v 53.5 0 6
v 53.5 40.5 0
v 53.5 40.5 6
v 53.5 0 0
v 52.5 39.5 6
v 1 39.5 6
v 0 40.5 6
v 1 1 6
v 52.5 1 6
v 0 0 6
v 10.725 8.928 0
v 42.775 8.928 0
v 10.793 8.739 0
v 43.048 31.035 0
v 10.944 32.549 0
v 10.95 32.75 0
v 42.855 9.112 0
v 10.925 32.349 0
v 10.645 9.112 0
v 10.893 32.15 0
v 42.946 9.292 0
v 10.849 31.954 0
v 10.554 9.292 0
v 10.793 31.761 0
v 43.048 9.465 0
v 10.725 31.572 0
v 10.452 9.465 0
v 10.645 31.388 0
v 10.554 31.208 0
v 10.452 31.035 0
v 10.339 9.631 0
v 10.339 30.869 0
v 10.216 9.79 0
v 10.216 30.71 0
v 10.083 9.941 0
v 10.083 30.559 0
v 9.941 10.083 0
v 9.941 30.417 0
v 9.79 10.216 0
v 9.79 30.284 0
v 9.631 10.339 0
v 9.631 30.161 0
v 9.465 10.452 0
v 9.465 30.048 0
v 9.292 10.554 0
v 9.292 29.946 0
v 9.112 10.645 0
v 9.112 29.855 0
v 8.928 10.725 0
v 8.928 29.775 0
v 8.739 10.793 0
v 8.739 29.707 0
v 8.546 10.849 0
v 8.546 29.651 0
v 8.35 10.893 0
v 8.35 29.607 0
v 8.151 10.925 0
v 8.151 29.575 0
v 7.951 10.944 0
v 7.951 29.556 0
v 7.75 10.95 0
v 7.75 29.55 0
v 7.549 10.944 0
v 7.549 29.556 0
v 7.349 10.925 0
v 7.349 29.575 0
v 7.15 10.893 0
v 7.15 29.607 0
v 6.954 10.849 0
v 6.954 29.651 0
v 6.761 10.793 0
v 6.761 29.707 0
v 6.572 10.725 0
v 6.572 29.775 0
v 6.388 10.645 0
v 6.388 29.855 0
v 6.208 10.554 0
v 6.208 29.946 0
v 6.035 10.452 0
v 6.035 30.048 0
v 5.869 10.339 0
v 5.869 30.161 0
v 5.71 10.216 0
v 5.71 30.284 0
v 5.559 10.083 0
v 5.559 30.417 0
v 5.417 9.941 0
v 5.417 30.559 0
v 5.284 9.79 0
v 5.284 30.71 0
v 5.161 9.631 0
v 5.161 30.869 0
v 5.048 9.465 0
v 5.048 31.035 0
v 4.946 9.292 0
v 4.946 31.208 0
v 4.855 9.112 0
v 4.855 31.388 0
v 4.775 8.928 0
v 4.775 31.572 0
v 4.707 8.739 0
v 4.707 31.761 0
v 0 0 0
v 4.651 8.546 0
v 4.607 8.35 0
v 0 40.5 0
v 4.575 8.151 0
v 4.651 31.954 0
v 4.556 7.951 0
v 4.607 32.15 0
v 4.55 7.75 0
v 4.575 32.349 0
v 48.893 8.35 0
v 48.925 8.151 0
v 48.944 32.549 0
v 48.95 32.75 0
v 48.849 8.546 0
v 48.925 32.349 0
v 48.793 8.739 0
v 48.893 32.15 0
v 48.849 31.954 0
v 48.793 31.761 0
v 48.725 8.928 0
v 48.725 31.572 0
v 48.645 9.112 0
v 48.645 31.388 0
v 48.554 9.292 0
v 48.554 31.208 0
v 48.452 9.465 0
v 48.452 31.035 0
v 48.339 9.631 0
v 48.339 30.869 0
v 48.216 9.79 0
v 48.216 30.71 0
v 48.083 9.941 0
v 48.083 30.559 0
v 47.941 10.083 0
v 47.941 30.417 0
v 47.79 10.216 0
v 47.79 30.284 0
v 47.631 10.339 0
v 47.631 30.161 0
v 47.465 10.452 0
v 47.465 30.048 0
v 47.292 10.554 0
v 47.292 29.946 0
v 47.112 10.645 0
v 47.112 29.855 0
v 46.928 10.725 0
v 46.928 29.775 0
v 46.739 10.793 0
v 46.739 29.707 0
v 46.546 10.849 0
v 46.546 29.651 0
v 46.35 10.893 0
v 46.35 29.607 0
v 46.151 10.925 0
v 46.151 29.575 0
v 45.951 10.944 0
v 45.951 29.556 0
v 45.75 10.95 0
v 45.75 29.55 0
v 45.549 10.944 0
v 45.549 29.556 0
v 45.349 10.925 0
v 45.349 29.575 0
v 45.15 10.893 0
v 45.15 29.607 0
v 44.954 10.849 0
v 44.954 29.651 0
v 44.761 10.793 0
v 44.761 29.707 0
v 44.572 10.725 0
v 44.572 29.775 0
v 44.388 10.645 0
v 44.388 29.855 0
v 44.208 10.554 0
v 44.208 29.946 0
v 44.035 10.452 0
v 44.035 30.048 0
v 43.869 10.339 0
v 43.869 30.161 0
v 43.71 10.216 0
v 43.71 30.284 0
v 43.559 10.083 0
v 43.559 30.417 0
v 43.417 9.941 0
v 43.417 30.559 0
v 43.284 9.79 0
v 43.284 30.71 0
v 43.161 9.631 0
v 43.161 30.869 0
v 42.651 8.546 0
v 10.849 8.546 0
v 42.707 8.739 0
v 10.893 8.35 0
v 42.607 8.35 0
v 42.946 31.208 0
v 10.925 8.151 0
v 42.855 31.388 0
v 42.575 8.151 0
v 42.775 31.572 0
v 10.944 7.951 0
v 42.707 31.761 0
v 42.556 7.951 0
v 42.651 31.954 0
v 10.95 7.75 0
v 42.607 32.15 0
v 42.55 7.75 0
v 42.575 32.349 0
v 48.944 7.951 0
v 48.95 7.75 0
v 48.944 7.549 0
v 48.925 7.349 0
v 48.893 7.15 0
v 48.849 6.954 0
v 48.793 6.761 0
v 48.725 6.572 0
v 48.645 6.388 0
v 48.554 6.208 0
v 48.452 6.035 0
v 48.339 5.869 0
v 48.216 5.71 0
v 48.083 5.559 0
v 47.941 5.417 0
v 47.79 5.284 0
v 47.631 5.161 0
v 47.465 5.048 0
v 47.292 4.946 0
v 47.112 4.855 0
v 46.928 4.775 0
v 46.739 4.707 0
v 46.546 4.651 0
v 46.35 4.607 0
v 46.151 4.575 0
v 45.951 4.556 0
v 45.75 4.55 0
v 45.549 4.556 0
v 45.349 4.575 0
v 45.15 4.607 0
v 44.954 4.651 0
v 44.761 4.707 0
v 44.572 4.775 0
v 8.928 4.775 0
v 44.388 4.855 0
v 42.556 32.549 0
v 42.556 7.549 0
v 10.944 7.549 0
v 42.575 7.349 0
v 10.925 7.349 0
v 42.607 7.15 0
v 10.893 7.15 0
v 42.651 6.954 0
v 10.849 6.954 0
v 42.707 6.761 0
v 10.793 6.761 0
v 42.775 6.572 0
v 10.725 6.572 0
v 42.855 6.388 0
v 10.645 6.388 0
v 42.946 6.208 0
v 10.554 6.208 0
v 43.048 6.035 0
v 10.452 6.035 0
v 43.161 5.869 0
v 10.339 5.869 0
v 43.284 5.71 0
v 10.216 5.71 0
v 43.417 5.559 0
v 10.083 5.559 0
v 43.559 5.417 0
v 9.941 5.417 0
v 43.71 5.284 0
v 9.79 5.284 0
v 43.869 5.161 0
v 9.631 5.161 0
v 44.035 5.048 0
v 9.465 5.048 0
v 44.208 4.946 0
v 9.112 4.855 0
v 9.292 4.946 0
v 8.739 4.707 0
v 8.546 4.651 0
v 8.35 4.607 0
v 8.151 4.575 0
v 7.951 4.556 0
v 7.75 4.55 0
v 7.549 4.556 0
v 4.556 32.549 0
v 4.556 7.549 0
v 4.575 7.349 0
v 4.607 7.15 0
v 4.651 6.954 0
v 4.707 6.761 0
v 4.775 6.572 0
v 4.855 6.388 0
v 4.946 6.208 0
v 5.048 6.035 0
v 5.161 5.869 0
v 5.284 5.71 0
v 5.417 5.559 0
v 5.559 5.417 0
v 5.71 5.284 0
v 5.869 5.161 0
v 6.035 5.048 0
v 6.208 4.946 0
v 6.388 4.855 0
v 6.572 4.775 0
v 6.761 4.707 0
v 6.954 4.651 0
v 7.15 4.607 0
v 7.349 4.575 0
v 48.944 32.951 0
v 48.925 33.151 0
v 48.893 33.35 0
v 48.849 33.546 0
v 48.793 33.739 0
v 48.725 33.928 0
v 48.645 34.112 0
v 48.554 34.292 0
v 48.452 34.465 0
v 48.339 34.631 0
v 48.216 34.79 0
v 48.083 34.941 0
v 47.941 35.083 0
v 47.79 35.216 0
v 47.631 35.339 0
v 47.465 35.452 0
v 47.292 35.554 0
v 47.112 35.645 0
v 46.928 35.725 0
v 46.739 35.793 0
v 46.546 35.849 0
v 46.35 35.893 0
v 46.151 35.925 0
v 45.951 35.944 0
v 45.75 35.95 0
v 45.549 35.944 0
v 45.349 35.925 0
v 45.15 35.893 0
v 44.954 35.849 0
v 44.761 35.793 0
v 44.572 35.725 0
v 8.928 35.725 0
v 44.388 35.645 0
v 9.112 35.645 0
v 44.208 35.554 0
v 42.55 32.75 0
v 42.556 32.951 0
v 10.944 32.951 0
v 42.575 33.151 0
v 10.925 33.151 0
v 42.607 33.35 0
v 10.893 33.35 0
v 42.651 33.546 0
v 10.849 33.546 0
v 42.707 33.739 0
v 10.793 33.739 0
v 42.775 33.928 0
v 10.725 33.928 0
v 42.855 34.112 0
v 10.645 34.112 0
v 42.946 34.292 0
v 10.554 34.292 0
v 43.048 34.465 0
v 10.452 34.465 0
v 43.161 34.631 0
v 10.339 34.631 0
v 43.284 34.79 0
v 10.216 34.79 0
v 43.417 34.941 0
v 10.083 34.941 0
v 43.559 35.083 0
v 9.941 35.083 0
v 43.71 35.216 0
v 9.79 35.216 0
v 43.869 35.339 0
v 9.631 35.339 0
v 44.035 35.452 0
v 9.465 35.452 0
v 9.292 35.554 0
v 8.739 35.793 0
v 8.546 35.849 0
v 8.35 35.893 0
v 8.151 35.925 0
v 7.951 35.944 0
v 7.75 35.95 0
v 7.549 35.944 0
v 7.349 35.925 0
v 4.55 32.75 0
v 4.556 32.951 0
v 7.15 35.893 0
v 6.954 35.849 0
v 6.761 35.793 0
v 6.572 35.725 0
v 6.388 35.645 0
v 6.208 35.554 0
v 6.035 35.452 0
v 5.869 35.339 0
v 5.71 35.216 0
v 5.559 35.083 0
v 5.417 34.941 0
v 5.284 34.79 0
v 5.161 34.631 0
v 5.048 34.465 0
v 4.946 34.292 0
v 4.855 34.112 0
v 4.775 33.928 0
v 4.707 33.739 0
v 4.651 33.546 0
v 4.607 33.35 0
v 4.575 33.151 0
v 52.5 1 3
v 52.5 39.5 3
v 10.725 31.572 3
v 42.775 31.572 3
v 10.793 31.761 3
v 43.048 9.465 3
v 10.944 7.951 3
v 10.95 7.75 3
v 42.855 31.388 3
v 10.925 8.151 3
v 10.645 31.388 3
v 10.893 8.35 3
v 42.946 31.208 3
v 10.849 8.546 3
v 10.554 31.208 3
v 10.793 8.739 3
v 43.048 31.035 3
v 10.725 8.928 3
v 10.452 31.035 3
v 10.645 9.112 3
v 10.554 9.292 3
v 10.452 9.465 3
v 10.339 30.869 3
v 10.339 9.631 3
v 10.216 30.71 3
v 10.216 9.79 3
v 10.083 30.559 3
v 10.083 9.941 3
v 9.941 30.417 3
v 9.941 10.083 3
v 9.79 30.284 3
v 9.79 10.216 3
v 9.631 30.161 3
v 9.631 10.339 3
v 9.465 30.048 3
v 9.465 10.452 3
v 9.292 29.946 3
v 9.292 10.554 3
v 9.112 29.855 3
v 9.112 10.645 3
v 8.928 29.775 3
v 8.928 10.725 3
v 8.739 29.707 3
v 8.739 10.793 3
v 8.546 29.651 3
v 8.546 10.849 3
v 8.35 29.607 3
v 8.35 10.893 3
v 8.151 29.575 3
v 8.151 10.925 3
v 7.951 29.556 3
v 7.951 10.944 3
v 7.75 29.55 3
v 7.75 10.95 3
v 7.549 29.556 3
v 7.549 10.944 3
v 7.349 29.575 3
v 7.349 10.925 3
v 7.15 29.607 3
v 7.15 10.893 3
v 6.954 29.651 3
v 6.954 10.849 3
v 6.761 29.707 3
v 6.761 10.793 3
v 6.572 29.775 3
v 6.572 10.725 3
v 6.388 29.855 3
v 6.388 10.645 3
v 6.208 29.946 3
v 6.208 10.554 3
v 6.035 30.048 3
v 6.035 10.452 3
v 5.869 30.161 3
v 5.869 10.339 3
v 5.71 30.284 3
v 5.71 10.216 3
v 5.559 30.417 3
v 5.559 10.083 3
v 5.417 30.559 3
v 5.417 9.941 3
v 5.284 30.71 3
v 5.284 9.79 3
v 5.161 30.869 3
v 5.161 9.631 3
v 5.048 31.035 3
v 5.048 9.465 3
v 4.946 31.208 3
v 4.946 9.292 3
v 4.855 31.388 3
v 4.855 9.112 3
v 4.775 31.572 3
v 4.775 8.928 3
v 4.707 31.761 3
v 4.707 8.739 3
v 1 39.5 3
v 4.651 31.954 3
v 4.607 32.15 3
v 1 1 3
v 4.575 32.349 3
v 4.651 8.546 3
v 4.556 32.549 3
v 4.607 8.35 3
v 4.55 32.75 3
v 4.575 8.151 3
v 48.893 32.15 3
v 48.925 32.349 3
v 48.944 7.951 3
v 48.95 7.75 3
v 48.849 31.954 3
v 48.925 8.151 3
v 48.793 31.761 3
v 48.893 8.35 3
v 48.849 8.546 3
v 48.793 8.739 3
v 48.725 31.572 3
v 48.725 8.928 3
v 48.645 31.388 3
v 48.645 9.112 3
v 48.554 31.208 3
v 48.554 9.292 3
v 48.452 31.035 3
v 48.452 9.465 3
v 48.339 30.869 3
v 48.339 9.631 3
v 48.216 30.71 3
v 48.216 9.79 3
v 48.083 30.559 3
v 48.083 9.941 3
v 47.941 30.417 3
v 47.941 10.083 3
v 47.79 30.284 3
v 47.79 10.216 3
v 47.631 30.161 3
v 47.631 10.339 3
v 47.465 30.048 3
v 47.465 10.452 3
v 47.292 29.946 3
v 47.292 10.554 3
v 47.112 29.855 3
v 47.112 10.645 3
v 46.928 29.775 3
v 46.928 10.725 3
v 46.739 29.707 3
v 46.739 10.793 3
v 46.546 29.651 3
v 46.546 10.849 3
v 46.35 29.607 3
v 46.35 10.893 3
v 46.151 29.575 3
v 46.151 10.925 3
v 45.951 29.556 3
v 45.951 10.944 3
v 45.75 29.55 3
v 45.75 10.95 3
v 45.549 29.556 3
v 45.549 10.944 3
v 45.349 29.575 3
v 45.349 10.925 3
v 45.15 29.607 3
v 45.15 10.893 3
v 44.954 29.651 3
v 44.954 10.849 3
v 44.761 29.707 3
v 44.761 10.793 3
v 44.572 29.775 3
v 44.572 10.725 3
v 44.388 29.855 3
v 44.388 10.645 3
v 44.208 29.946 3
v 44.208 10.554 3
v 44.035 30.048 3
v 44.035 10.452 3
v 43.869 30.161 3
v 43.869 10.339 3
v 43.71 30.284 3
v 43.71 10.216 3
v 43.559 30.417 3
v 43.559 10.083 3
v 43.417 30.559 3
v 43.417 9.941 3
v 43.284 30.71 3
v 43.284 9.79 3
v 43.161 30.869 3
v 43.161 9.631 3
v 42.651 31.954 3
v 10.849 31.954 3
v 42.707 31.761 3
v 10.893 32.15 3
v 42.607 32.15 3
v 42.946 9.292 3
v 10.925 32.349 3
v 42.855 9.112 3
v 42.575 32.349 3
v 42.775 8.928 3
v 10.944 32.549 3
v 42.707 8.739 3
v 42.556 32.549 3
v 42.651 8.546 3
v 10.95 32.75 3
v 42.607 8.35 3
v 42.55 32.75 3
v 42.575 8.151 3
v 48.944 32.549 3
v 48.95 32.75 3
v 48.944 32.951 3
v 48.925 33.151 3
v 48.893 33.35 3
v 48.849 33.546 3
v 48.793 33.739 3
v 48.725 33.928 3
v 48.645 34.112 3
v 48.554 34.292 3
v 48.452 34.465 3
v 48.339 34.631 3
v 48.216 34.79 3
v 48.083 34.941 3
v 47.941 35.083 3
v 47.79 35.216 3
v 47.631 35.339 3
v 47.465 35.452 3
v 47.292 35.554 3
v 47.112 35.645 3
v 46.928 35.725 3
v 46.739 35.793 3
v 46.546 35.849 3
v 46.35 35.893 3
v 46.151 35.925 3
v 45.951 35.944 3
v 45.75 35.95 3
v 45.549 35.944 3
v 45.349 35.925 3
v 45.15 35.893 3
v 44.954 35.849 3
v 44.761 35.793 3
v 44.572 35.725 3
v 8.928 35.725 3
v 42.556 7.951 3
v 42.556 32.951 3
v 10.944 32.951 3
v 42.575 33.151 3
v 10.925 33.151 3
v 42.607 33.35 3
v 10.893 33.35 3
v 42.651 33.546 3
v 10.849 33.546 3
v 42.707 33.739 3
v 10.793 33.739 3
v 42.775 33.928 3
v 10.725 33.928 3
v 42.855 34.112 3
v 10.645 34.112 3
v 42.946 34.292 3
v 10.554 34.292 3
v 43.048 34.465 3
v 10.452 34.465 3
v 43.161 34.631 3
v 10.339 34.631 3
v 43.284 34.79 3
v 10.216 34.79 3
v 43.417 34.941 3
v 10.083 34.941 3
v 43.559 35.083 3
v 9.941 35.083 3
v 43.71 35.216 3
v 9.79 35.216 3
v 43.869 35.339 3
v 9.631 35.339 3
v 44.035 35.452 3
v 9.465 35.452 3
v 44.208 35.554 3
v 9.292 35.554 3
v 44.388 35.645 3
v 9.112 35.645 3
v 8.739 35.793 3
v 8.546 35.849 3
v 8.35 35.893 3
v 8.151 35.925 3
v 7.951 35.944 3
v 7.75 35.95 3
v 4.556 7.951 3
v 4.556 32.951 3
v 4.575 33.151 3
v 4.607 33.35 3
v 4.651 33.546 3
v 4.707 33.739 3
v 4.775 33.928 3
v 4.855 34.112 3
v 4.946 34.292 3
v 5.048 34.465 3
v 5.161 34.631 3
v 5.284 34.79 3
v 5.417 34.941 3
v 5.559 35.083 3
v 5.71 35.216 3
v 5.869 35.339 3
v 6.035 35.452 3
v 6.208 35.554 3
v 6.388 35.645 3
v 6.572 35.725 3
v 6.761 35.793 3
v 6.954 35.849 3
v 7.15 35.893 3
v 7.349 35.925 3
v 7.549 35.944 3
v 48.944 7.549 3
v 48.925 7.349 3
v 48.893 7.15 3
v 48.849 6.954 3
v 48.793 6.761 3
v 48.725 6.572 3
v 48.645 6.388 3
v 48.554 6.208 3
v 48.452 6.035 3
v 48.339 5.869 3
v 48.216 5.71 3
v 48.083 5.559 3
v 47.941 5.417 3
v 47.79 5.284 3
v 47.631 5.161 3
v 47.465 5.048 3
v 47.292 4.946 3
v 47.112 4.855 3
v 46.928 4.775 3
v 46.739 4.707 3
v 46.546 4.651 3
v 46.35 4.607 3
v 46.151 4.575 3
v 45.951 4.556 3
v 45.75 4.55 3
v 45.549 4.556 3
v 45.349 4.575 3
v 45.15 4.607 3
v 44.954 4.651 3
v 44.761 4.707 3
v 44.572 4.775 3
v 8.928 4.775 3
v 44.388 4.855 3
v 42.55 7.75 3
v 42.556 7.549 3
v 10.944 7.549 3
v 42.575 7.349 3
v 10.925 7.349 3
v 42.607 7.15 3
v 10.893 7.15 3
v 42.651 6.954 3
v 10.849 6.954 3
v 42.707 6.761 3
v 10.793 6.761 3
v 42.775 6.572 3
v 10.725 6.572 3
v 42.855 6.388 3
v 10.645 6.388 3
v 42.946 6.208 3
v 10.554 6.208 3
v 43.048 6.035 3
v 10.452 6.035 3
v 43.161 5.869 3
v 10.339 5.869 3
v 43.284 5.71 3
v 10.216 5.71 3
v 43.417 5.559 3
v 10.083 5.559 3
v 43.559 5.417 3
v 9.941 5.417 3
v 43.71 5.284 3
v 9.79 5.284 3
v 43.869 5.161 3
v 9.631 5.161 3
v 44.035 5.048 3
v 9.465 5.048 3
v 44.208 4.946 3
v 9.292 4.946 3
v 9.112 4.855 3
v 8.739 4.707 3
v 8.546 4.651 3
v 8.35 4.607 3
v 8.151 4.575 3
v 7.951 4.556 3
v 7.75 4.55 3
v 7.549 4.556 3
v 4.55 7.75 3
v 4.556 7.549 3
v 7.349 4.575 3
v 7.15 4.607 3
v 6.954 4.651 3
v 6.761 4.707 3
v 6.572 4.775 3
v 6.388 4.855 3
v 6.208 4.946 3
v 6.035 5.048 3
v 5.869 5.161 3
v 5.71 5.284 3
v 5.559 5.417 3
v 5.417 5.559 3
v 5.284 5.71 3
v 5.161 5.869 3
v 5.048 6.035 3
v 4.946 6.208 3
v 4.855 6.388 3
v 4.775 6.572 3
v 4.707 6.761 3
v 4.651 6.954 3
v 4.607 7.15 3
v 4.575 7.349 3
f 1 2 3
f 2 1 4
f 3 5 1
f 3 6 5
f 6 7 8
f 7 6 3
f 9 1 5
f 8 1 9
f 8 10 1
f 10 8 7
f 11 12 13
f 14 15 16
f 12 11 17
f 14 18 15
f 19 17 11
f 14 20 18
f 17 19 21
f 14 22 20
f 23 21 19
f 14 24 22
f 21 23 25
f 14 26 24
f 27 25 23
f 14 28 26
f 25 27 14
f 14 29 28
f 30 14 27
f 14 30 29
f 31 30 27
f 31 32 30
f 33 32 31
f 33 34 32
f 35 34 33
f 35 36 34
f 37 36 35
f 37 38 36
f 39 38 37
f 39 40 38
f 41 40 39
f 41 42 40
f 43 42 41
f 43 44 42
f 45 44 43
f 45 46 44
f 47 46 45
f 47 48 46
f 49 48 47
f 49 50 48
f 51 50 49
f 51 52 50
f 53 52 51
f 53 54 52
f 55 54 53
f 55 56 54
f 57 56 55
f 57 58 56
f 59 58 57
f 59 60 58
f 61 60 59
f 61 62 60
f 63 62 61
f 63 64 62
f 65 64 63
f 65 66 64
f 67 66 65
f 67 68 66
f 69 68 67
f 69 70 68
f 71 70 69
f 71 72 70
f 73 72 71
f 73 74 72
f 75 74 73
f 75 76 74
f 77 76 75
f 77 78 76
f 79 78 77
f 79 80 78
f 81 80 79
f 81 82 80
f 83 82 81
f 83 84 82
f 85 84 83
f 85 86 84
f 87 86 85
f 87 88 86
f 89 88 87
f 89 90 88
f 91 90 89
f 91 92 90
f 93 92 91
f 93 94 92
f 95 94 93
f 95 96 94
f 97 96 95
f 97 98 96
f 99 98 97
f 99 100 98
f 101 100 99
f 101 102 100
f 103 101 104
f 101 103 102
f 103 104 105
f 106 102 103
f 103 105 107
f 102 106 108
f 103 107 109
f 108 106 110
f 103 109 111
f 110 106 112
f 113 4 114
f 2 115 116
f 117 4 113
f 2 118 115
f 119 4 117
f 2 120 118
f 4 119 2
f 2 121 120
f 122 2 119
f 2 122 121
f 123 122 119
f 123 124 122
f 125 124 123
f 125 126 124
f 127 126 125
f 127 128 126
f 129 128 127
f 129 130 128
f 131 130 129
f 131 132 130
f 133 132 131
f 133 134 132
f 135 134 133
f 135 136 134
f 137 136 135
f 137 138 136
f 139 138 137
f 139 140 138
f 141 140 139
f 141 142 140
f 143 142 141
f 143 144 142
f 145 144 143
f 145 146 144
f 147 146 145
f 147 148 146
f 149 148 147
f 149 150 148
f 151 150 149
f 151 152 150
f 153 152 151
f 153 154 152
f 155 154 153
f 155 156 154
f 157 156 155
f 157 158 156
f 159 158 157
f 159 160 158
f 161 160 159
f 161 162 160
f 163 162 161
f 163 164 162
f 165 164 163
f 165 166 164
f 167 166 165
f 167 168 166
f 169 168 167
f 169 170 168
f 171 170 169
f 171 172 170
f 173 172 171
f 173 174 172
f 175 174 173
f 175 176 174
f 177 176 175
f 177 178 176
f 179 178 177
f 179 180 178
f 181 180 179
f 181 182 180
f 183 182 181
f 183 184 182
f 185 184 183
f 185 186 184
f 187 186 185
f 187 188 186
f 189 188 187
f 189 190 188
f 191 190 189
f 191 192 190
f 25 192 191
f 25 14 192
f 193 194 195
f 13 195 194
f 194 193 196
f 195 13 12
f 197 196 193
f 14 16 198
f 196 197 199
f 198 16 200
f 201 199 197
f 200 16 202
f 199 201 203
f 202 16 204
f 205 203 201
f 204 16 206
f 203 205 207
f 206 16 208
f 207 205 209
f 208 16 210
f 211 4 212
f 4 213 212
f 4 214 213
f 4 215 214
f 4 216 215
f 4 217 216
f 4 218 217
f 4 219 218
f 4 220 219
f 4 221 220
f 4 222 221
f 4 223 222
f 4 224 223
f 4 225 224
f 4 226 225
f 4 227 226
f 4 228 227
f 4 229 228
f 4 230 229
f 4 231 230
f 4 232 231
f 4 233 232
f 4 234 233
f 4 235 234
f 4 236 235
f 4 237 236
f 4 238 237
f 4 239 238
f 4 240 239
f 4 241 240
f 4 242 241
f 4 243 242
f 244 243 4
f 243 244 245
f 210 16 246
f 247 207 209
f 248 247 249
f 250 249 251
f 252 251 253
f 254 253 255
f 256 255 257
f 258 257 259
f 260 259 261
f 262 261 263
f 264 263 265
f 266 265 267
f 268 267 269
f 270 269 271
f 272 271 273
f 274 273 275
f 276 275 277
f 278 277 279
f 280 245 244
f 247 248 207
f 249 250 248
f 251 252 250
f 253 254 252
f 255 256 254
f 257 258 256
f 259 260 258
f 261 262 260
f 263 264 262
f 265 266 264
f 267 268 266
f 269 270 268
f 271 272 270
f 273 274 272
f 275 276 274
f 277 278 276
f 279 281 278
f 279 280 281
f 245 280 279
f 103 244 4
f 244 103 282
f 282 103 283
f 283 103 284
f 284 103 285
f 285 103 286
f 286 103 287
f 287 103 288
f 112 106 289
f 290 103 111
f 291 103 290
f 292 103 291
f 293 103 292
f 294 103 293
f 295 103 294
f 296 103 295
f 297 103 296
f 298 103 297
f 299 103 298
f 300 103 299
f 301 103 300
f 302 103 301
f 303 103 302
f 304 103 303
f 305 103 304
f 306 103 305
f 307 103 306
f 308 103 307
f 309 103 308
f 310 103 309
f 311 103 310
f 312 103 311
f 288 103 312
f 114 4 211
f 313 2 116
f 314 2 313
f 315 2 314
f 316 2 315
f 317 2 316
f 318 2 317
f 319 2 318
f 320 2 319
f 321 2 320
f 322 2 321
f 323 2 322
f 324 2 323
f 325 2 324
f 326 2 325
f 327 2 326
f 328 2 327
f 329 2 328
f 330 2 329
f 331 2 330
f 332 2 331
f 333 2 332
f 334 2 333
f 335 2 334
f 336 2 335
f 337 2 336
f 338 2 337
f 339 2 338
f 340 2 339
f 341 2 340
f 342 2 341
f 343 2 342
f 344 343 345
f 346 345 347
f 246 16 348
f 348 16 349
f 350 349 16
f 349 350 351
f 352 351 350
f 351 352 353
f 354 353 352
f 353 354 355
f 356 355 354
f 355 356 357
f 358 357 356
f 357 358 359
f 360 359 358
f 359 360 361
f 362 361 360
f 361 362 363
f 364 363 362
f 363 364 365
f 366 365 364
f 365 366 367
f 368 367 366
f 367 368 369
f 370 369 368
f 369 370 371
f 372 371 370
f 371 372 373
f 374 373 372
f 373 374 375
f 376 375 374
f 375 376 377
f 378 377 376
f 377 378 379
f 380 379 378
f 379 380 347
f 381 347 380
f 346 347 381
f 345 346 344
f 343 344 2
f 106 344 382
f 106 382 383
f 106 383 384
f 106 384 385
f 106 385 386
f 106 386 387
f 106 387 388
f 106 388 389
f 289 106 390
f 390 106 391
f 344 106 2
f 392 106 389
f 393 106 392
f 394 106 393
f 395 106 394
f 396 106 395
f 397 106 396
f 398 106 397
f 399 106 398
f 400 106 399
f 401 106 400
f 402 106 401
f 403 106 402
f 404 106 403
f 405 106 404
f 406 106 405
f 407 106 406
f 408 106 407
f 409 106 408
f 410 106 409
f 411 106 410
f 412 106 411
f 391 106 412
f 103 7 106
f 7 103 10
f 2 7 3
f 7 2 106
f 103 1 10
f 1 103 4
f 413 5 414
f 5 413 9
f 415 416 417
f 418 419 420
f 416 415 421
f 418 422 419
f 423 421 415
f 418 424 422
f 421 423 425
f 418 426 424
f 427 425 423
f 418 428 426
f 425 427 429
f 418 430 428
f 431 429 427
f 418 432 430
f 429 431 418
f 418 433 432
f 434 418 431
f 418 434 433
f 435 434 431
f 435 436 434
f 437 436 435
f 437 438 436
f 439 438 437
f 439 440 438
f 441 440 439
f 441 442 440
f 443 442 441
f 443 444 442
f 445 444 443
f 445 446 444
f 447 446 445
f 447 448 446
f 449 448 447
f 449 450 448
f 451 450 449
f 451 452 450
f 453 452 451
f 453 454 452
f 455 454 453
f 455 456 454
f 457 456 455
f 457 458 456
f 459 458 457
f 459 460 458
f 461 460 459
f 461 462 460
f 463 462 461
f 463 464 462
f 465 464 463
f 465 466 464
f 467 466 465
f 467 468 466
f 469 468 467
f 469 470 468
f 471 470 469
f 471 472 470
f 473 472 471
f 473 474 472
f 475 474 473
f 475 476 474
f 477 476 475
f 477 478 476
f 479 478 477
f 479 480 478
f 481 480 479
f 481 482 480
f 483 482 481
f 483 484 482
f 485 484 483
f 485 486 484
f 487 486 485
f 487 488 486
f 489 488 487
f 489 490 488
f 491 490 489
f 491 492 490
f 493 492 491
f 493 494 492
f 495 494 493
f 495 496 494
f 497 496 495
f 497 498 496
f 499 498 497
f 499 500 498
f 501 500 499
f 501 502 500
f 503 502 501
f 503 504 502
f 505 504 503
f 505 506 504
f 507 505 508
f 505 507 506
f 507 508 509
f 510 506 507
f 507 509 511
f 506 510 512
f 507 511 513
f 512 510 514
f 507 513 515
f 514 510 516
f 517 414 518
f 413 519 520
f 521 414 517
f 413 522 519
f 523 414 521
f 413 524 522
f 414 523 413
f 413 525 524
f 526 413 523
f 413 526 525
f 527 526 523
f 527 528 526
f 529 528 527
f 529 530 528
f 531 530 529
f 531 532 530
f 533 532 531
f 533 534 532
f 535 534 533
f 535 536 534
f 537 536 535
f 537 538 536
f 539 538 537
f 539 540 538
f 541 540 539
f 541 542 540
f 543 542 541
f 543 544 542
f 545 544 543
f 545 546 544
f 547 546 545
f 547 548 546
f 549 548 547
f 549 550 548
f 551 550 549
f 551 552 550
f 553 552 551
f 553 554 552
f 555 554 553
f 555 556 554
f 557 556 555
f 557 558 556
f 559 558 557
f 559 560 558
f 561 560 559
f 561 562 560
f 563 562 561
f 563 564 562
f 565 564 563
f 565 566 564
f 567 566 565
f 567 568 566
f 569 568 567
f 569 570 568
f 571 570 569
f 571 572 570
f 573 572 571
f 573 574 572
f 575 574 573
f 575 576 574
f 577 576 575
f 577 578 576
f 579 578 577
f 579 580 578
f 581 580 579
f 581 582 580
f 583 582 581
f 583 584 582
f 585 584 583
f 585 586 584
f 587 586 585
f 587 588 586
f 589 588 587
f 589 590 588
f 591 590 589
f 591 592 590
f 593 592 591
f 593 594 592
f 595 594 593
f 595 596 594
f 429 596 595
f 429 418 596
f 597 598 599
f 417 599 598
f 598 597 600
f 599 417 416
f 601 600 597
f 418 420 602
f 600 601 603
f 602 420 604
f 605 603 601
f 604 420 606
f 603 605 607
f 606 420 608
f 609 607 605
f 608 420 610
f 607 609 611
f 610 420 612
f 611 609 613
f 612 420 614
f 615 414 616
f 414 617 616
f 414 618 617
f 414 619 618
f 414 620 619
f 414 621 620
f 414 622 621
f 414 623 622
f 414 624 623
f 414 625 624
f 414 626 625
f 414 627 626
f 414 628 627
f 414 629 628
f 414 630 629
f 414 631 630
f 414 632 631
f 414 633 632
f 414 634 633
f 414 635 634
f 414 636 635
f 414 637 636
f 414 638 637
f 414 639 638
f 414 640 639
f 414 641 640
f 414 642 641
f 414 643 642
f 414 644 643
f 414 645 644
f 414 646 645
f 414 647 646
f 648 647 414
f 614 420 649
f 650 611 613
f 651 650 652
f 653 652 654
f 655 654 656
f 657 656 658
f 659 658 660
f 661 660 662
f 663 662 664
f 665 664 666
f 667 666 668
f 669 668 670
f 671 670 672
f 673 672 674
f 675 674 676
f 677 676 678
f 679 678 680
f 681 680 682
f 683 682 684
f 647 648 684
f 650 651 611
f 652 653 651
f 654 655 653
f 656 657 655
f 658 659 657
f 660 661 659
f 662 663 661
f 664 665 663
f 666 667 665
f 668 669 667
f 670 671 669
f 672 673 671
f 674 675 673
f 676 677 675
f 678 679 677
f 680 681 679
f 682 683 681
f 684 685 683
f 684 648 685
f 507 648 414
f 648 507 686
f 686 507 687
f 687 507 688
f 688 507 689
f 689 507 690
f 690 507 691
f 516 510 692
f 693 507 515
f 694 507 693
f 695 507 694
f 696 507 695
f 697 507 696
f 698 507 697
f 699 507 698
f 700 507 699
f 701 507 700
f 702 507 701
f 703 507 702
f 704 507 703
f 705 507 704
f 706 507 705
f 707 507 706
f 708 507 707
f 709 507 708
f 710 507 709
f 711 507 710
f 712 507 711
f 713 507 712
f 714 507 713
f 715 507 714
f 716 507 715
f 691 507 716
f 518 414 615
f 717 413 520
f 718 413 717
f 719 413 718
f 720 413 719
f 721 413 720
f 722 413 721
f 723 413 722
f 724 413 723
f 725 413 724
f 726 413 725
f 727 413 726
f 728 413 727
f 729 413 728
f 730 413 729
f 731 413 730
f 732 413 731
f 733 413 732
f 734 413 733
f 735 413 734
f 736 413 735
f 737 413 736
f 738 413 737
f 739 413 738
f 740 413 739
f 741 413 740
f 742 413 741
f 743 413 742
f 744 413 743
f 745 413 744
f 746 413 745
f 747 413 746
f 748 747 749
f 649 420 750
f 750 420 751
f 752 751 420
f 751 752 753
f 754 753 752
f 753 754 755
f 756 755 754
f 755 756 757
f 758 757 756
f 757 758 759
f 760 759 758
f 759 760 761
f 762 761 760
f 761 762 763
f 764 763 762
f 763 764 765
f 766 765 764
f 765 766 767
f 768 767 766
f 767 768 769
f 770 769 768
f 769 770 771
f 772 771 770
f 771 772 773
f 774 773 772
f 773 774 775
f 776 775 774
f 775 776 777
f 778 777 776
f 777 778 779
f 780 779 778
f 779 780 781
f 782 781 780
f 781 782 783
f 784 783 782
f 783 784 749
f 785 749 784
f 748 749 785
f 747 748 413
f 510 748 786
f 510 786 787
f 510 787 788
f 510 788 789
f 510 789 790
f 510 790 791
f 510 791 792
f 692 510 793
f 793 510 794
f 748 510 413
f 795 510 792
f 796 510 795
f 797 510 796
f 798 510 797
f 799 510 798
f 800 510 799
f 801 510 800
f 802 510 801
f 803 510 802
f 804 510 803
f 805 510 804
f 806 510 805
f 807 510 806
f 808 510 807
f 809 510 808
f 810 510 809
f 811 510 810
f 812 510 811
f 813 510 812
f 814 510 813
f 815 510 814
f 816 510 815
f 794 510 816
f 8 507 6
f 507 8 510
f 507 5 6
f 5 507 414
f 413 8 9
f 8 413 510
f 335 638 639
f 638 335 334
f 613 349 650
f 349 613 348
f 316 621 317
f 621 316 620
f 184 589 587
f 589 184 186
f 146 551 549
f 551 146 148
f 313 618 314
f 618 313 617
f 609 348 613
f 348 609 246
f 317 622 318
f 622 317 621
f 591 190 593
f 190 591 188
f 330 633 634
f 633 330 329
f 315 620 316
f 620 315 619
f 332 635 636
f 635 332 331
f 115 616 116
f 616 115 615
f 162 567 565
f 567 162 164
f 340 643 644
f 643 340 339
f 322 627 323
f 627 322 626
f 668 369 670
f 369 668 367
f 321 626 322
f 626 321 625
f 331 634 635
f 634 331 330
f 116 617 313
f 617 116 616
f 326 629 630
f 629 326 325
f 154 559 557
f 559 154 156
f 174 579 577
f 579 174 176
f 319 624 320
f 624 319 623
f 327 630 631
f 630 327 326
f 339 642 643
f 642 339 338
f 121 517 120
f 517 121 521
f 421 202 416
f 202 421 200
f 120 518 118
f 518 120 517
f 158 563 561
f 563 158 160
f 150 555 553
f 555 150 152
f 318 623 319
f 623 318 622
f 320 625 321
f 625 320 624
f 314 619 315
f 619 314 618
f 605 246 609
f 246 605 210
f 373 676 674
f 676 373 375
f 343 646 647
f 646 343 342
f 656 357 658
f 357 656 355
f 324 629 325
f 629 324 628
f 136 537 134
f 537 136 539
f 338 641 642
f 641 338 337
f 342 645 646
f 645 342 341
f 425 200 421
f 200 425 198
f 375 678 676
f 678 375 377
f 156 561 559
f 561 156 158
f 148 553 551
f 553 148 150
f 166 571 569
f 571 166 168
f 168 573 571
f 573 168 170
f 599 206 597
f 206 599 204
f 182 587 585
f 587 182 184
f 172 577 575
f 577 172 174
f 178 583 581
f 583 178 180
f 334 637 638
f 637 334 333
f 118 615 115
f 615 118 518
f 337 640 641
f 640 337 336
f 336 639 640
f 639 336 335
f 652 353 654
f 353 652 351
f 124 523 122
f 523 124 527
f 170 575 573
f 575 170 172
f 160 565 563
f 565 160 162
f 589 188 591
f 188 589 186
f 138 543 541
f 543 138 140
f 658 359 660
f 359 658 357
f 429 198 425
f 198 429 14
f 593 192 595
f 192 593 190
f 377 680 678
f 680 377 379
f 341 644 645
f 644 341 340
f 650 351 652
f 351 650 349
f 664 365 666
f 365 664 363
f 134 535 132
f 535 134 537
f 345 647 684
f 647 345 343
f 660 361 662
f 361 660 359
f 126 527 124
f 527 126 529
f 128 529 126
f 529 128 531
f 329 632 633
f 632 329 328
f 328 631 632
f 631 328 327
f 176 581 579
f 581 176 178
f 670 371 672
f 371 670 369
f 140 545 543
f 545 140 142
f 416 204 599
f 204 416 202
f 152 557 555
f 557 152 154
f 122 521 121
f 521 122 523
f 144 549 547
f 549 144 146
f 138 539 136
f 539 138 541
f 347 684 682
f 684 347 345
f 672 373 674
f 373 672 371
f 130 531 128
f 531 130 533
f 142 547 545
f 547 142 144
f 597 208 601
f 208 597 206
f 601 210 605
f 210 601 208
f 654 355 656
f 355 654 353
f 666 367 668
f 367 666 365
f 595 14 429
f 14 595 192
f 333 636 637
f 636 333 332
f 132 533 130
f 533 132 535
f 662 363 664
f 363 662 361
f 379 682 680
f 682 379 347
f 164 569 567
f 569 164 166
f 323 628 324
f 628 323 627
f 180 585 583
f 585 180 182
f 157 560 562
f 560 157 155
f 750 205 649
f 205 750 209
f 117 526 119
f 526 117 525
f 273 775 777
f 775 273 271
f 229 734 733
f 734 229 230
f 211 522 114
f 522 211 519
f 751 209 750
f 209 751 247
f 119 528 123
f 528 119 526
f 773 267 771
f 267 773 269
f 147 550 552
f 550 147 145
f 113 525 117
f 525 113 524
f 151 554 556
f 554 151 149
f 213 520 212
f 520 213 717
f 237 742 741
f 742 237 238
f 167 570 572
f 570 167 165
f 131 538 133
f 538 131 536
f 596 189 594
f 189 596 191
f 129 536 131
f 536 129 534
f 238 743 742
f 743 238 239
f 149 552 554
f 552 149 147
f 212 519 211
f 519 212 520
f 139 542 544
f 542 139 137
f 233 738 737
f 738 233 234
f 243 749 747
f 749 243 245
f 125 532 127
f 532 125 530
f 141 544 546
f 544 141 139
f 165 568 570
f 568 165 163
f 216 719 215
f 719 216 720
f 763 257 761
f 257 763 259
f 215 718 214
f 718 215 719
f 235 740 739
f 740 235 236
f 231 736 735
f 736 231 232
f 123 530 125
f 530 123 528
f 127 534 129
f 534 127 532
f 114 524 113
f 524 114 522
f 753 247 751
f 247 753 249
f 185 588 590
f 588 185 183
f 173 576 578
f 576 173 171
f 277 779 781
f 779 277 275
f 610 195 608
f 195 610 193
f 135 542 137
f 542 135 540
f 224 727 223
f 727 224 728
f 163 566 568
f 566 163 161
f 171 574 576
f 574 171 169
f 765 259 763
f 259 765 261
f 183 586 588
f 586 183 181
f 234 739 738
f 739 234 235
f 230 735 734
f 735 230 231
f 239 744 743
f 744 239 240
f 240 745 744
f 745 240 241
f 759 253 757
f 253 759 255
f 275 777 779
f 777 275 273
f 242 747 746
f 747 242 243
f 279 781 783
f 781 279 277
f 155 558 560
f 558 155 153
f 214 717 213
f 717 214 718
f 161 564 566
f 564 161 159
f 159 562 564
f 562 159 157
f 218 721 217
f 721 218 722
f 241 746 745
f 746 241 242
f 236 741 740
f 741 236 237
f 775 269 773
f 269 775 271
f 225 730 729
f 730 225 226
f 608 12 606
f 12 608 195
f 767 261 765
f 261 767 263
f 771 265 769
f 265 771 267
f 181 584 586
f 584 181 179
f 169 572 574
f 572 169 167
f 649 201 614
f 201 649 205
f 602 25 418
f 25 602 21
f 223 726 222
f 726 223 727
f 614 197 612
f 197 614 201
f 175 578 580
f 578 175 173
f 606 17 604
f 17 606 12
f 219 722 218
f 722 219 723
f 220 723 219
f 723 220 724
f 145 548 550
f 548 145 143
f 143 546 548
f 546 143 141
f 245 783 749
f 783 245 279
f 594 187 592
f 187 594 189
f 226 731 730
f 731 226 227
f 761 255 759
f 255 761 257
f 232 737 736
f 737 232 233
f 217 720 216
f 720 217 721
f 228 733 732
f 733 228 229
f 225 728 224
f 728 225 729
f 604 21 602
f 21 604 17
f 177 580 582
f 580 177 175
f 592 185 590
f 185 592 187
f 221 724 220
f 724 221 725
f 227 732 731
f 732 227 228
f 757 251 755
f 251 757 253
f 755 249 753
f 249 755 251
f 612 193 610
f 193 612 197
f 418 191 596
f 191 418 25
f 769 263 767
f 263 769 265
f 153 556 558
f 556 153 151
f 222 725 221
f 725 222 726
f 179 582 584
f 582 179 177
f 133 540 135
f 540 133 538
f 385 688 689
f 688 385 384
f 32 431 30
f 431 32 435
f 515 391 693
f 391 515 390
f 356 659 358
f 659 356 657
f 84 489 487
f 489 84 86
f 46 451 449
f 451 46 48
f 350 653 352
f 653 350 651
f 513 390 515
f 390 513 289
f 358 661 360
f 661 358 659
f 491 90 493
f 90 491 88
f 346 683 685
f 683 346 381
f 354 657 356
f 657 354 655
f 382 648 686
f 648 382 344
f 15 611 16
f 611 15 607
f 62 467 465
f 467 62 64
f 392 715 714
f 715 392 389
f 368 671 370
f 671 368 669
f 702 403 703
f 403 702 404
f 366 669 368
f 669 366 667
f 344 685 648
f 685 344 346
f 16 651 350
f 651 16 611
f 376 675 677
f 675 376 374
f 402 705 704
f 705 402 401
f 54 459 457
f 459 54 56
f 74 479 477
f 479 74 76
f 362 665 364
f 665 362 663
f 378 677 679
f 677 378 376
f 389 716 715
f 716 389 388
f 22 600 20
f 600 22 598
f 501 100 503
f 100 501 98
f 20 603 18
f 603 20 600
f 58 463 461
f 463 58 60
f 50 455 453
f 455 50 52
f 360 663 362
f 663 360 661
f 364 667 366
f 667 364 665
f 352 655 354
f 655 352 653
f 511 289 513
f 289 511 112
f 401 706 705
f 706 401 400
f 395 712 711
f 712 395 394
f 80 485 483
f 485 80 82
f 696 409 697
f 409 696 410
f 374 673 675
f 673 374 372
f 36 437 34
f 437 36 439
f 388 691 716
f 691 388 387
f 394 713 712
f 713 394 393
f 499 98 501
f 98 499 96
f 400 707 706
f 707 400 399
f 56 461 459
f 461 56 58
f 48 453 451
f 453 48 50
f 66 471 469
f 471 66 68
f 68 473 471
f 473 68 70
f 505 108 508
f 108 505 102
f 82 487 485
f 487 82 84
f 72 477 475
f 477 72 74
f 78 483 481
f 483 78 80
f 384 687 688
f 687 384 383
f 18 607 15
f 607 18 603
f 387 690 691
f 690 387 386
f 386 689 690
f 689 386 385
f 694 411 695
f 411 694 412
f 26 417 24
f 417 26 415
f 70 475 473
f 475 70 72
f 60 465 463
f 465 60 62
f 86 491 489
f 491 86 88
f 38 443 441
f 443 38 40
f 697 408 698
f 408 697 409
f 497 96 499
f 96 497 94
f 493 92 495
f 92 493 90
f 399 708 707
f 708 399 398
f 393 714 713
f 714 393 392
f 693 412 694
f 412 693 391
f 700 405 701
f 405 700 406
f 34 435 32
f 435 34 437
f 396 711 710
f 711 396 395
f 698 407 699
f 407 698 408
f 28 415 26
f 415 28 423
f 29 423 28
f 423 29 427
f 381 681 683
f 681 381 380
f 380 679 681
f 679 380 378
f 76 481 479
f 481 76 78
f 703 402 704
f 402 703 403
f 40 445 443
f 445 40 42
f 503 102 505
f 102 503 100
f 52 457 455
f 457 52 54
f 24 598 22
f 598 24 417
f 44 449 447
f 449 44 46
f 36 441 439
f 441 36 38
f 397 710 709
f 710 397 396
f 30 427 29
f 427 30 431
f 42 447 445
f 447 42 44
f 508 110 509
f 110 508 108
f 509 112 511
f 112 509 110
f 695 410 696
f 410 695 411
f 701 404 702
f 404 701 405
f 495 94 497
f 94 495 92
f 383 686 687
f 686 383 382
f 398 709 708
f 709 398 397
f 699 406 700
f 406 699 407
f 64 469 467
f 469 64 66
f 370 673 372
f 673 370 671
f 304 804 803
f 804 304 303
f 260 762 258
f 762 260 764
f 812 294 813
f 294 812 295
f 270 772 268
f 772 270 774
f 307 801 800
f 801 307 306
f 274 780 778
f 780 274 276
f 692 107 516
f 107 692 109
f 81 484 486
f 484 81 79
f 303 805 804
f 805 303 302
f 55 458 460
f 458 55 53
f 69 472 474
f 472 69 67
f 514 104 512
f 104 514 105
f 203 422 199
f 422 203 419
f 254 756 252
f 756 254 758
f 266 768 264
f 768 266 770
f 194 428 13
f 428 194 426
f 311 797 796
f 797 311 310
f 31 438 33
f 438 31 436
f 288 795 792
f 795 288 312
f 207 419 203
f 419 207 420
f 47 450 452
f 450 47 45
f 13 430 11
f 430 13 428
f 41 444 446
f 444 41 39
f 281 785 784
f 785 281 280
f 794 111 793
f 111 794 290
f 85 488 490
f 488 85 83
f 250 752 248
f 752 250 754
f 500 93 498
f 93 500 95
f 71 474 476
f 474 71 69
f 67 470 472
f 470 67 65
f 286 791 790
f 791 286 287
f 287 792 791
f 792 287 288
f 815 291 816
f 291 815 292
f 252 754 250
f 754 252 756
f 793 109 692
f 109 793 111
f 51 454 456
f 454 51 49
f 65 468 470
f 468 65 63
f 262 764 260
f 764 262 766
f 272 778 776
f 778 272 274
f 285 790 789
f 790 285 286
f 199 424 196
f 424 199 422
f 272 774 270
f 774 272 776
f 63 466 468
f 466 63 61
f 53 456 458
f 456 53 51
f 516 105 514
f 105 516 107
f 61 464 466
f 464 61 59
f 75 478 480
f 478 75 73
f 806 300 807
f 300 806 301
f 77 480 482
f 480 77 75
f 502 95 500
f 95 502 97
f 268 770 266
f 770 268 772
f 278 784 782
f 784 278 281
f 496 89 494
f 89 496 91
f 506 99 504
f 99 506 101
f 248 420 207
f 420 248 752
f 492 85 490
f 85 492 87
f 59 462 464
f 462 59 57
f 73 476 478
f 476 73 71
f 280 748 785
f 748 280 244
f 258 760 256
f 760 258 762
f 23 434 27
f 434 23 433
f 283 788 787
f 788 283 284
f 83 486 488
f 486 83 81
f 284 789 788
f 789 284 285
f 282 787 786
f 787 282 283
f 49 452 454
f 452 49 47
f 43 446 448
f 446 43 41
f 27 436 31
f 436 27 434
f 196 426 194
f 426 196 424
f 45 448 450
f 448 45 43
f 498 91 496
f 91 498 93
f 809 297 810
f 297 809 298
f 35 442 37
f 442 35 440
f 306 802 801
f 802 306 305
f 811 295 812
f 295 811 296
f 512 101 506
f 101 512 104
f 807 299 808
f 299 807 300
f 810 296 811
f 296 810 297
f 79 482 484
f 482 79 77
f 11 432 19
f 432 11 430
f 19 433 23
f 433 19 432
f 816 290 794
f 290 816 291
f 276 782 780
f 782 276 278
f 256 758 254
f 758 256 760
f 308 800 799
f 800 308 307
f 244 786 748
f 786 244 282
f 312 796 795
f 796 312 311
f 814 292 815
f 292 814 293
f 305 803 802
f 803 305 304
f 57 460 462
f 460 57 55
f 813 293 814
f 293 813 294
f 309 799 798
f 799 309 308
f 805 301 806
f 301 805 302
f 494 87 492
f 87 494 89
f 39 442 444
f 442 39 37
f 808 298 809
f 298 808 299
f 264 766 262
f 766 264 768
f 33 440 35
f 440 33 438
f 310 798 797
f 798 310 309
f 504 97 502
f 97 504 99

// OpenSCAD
bolt_d = 6.4;     // M5
bolt_x = 38;      // 38
bolt_z = 25;      // 25
bracket_x = 51.5; // 51
bracket_z = 38.5; // 38
bracket_y = 6;
pad = 1;
width = bracket_x+2*pad;
height = bracket_z+2*pad;

$fn=100;

difference() {
  cube([width, height, bracket_y]);
  
  translate([pad, pad, bracket_y/2]) cube([bracket_x, bracket_z, bracket_y]);
  
  translate([width/2+bolt_x/2, height/2+bolt_z/2]) cylinder(d=bolt_d, h=bracket_z);
  translate([width/2+bolt_x/2, height/2-bolt_z/2]) cylinder(d=bolt_d, h=bracket_z);
  translate([width/2-bolt_x/2, height/2+bolt_z/2]) cylinder(d=bolt_d, h=bracket_z);
  translate([width/2-bolt_x/2, height/2-bolt_z/2]) cylinder(d=bolt_d, h=bracket_z);
}
